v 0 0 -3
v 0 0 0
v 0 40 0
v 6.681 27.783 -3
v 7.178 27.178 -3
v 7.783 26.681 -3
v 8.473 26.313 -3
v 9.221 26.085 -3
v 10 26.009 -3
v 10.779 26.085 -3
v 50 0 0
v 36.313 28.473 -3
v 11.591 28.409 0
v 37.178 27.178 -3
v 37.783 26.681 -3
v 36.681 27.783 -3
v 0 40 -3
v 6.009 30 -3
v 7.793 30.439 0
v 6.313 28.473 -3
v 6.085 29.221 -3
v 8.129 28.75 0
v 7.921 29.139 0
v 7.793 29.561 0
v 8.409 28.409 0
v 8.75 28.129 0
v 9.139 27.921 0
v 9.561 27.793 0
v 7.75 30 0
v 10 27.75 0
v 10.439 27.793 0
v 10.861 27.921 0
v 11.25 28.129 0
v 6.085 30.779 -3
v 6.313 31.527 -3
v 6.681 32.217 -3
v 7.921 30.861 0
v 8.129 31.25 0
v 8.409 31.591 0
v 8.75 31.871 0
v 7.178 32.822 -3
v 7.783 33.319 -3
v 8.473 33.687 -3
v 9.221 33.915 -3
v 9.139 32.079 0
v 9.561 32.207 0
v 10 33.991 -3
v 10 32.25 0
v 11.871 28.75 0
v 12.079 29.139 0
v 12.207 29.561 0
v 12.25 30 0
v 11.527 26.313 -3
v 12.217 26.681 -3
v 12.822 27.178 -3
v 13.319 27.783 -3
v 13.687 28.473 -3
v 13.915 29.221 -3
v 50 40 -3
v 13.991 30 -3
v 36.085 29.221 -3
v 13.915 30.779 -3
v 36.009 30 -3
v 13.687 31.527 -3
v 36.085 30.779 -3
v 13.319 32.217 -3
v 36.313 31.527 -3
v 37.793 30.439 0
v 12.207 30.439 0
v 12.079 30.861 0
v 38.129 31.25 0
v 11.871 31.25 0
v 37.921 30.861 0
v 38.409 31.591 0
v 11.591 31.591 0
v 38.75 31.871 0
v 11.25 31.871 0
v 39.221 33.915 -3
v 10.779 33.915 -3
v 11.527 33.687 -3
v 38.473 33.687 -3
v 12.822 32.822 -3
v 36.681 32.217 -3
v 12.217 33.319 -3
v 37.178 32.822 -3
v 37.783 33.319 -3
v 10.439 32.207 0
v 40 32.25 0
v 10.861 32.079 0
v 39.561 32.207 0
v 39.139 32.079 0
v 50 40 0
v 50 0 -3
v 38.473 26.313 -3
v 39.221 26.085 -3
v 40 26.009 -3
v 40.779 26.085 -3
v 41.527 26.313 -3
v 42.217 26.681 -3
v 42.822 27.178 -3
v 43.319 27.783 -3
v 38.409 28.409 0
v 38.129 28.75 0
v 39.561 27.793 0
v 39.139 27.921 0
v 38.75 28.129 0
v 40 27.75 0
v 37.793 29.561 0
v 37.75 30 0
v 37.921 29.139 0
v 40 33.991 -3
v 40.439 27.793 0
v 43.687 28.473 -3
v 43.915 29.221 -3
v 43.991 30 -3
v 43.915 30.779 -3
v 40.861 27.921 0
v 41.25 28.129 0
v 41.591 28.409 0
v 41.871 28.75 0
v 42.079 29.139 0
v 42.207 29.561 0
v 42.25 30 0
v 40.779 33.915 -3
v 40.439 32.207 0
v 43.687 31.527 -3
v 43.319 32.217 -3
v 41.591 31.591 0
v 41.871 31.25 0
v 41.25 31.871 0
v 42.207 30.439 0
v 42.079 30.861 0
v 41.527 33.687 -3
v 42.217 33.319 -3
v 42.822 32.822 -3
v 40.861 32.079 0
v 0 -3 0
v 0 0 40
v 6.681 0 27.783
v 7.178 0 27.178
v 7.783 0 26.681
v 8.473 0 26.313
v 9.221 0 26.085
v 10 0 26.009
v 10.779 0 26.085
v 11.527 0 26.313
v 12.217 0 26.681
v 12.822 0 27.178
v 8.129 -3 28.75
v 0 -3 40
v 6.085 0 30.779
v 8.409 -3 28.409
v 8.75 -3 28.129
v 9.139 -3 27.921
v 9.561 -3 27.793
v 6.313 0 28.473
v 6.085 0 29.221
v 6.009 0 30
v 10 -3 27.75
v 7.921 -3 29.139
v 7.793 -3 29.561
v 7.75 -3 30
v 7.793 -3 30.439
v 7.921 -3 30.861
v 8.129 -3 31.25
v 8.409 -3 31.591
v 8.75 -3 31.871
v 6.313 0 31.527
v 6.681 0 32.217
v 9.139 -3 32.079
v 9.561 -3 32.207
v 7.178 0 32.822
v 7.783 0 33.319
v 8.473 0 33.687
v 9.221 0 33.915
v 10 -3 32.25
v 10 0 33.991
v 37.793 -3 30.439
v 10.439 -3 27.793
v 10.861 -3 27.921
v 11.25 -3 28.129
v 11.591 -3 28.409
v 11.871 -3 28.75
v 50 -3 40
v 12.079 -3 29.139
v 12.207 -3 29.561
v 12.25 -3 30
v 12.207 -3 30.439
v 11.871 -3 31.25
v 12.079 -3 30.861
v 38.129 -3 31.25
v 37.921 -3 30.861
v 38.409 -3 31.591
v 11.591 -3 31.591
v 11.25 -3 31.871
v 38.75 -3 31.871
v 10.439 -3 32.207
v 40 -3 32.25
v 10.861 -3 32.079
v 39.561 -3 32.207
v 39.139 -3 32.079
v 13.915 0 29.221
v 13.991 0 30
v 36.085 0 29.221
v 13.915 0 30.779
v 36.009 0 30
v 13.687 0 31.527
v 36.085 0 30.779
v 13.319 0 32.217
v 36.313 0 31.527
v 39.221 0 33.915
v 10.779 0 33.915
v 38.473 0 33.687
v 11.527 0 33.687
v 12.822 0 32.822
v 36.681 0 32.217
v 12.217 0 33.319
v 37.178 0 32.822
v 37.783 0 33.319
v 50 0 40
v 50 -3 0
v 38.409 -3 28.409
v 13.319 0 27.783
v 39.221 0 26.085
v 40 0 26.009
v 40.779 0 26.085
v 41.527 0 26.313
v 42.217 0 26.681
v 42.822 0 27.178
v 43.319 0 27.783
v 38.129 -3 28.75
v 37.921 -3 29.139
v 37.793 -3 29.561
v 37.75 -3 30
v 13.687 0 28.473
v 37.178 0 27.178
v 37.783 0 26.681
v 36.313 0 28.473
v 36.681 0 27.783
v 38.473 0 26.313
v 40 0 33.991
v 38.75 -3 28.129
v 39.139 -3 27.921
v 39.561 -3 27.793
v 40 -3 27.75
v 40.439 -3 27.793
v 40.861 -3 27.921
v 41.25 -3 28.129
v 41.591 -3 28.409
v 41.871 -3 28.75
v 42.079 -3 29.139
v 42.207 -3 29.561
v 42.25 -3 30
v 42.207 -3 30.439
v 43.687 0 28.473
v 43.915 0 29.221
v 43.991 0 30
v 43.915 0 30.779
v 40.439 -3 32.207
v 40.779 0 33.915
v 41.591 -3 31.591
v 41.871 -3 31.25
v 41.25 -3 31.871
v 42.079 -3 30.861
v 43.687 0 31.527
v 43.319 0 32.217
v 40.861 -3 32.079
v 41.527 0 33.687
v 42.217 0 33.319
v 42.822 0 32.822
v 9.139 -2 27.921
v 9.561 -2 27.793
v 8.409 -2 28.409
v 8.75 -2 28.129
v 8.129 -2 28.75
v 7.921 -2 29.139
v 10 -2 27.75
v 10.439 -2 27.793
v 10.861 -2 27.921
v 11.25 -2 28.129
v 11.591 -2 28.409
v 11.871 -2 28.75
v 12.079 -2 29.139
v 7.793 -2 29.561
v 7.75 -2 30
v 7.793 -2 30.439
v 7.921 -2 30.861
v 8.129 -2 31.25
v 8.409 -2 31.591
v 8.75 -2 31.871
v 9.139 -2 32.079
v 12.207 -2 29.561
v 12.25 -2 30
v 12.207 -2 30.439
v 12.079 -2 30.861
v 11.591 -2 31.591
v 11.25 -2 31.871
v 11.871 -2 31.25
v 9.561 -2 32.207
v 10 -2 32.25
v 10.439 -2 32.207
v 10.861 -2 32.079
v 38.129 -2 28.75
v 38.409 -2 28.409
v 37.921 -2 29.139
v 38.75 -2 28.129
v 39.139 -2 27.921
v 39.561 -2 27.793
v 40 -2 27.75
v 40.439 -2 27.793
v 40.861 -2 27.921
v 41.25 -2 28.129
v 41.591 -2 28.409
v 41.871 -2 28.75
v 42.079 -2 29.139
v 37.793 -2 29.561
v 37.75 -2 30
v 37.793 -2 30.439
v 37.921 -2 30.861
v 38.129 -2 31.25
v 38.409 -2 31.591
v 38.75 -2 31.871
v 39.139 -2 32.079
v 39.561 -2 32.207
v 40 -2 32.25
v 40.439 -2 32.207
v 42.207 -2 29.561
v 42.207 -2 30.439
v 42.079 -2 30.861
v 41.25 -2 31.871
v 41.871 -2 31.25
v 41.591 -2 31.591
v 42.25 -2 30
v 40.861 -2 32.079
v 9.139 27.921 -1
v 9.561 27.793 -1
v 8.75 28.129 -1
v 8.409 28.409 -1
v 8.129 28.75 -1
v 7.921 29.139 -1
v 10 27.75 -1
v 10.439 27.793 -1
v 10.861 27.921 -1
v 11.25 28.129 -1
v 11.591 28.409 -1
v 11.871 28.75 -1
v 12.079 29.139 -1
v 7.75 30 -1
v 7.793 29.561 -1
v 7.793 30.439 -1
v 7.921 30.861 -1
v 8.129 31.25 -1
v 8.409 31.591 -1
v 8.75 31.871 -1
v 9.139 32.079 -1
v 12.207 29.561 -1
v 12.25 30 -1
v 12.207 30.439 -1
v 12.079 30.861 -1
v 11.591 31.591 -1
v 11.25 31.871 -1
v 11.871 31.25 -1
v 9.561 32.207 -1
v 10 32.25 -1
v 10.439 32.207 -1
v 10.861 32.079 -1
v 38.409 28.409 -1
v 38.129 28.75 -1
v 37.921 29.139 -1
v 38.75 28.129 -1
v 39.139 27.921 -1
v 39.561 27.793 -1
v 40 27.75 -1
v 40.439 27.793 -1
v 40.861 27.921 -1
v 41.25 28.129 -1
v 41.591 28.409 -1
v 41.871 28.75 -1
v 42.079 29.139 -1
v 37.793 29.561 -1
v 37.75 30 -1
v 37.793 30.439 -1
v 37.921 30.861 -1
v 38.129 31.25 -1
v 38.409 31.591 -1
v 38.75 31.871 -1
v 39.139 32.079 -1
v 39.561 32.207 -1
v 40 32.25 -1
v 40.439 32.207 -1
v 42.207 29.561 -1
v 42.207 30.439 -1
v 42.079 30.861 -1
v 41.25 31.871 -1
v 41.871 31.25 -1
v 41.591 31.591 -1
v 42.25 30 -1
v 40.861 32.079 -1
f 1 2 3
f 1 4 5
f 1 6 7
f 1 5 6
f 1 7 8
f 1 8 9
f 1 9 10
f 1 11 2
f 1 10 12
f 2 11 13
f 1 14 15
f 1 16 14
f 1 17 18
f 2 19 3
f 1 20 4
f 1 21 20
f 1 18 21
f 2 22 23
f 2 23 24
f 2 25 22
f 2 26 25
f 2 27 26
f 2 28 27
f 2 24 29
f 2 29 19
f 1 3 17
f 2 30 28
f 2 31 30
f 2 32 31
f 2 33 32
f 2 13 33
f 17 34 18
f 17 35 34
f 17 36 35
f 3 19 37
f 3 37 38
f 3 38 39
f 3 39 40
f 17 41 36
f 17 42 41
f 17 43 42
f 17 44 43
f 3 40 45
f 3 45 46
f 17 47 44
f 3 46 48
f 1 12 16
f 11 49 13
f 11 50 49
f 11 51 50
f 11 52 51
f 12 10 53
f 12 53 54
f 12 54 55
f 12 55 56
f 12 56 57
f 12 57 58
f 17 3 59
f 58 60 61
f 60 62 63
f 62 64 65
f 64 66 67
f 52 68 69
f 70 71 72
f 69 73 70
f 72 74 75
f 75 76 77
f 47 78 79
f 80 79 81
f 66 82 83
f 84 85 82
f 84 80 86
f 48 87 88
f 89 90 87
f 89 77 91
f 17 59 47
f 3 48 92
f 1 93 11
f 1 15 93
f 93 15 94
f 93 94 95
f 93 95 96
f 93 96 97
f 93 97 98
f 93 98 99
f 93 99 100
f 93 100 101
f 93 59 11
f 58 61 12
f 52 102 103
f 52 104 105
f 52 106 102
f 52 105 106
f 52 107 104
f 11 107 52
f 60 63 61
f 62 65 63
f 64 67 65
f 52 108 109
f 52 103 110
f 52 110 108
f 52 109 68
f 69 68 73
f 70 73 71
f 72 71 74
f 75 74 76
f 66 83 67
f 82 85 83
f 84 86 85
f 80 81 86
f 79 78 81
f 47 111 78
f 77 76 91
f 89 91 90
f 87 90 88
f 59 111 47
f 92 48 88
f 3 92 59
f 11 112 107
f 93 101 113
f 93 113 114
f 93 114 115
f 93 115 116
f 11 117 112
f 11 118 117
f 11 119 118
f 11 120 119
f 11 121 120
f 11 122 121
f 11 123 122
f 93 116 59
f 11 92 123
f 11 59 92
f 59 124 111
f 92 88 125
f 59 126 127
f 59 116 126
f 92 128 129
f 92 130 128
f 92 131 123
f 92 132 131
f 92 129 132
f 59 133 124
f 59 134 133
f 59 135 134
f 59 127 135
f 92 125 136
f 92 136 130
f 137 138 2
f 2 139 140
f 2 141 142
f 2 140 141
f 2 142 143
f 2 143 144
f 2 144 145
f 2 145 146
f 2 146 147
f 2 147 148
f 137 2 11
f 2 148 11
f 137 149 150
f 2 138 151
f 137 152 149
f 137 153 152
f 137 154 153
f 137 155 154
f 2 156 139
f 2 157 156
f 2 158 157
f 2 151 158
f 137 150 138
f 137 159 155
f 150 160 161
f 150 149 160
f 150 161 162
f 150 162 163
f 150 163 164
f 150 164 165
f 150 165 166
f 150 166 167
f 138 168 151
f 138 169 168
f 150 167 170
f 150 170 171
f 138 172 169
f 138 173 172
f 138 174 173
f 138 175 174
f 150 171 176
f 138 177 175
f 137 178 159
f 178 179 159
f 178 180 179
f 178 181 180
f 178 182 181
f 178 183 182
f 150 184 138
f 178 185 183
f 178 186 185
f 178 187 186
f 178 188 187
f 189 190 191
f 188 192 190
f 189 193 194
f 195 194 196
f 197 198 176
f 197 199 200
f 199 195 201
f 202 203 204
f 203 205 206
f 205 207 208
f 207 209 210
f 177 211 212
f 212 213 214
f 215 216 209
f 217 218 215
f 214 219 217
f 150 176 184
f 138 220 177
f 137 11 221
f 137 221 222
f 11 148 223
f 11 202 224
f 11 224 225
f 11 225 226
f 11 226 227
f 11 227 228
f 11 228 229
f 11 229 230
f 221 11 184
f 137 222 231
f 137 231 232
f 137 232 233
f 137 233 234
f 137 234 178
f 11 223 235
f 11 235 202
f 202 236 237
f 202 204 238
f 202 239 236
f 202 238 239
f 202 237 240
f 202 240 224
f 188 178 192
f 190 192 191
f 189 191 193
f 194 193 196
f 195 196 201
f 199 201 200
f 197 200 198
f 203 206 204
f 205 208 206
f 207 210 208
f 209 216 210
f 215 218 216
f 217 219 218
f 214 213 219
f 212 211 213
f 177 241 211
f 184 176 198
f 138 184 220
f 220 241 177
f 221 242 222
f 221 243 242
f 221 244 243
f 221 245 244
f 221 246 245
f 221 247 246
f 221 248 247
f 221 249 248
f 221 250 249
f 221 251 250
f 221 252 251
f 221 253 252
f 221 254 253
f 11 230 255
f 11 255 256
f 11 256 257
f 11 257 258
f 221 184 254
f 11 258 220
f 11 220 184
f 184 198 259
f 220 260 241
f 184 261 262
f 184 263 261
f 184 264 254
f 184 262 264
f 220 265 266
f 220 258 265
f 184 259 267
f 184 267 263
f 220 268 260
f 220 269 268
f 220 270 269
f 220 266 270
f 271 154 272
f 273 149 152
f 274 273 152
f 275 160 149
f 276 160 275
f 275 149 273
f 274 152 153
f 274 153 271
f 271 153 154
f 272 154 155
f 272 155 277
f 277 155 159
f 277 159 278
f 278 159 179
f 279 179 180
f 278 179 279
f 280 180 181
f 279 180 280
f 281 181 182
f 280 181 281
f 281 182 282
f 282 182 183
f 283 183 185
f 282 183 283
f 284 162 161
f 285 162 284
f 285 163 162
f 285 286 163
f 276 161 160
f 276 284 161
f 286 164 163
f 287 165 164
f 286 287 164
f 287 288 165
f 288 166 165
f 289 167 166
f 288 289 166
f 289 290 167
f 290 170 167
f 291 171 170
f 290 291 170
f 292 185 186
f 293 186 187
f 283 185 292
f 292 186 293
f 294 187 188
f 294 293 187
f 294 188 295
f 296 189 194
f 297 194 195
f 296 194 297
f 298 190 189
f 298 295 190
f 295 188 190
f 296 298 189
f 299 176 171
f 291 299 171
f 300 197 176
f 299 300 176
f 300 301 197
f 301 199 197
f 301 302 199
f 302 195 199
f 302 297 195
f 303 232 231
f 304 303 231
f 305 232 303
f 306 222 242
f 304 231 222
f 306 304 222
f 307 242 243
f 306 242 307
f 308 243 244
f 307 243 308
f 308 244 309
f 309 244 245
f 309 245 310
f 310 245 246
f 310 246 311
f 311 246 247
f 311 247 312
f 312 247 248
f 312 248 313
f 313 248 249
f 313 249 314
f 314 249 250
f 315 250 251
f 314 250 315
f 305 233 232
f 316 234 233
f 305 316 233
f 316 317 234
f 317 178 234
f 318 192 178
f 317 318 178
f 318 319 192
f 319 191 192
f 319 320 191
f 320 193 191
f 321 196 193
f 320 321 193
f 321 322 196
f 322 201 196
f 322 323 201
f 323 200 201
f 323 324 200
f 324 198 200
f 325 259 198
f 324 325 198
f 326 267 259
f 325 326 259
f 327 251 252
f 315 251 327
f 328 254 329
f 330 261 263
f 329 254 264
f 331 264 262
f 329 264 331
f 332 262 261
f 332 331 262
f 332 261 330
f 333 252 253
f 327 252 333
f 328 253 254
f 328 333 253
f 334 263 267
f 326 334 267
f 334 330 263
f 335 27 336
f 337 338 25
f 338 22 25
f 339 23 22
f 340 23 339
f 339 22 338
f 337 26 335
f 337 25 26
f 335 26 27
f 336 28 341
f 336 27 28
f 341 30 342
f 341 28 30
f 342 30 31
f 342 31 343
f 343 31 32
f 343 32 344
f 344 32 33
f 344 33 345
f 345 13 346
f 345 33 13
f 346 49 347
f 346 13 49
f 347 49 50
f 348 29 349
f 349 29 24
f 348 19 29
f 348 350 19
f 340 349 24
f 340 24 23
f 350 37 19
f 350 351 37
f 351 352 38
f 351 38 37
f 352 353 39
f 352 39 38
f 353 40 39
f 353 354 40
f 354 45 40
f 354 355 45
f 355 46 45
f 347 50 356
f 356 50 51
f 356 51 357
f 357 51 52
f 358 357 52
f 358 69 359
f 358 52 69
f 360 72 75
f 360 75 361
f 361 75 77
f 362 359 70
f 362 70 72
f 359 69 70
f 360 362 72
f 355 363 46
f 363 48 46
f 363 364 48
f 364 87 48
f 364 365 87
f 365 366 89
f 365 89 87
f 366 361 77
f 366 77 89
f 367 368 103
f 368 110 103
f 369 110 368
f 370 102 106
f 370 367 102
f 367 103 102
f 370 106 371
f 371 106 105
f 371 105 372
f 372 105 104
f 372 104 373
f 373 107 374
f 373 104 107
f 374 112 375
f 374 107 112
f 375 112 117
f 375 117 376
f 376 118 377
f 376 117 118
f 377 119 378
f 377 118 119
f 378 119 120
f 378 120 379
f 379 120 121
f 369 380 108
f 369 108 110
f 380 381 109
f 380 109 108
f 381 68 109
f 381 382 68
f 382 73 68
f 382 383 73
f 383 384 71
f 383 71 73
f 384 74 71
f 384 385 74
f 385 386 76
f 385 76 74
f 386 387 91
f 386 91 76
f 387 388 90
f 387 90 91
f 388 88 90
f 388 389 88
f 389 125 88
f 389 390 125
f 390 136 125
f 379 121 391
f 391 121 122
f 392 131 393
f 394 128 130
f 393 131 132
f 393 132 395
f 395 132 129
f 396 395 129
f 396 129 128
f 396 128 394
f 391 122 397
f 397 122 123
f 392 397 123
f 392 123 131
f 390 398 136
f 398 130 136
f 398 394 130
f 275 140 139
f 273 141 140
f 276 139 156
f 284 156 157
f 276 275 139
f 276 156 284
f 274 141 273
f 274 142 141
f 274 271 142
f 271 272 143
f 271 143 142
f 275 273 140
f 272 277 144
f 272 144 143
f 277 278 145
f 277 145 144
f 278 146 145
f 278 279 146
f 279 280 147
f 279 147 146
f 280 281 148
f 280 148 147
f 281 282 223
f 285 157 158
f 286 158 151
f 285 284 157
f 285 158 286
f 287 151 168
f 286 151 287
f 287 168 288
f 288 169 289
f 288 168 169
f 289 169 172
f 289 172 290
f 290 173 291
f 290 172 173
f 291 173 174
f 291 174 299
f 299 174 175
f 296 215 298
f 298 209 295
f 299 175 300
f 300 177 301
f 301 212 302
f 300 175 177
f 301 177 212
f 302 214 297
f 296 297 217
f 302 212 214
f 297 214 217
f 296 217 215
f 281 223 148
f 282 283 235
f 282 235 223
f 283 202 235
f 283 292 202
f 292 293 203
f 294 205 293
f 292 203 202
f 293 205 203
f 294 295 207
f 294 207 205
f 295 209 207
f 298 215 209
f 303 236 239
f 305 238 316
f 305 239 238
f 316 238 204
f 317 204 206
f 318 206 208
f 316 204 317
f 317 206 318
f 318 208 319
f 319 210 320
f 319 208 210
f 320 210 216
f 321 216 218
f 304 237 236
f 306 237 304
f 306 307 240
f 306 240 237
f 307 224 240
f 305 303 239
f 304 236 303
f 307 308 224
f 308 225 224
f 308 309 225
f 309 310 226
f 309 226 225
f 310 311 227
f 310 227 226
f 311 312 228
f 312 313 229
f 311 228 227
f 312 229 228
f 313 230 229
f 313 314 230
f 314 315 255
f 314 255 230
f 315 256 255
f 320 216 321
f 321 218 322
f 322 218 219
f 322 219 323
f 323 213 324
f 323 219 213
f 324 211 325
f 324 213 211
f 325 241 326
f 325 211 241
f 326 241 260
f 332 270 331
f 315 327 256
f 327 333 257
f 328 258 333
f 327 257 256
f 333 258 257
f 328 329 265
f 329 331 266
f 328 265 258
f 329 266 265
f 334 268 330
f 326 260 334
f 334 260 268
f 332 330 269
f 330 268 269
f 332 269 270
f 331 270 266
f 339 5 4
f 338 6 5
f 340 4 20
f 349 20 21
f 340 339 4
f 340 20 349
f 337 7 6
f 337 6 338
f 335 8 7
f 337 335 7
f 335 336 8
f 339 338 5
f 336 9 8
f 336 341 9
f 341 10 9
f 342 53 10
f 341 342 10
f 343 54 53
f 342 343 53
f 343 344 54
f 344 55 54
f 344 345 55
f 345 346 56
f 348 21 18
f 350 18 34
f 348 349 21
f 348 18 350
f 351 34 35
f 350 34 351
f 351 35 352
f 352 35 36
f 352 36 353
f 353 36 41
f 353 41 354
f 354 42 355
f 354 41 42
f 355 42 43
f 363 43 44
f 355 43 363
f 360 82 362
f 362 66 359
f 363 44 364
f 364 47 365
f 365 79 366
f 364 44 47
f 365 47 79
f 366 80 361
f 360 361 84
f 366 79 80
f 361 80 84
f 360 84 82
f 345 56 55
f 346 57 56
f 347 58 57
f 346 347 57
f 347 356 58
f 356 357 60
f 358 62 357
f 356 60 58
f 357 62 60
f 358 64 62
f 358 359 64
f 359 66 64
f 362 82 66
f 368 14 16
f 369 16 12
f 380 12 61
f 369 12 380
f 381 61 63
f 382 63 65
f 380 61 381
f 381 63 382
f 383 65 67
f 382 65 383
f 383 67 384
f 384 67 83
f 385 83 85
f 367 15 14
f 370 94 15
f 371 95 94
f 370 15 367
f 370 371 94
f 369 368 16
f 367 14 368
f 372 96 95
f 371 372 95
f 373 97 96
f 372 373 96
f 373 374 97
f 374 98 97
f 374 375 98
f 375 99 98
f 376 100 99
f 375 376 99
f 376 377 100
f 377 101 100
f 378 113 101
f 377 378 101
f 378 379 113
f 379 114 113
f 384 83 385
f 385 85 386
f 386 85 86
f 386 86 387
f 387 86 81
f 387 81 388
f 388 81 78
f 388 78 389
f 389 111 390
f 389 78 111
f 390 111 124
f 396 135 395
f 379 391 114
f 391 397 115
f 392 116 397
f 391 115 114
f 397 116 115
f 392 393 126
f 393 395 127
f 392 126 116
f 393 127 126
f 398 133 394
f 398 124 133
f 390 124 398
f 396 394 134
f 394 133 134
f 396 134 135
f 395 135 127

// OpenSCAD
// L-bracket with countersunk holes

// Parameters
flange_width = 50;      // X direction
flange_depth = 40;      // Y direction for horizontal, Z direction for vertical
thickness = 3;

// Countersunk hole parameters
hole_diameter = 4.5;    // M4 through hole
countersink_diameter = 8;
countersink_depth = 2;
edge_distance = 10;     // Distance from edge to hole center

// Module for countersunk hole (pointing in +Z direction, countersink on top)
module countersunk_hole() {
    union() {
        // Through hole
        cylinder(h = thickness + 1, d = hole_diameter, center = true, $fn = 32);
        // Countersink (cone)
        translate([0, 0, thickness/2 - countersink_depth])
            cylinder(h = countersink_depth + 0.01, d1 = hole_diameter, d2 = countersink_diameter, $fn = 32);
    }
}

// Hole X positions (symmetric about center line, 10mm from left and right edges)
hole_x_positions = [edge_distance, flange_width - edge_distance];

difference() {
    union() {
        // Horizontal flange: extends in +Y direction, thickness in +Z at bottom (Z=0 to Z=thickness)
        // But inner corner at origin means the top surface of horizontal flange is at Z=0
        // So horizontal flange goes from Z=-thickness to Z=0, extending in +Y
        translate([0, 0, -thickness])
            cube([flange_width, flange_depth, thickness]);
        
        // Vertical flange: extends in +Z direction from origin, thickness in +Y at back
        // Inner corner at origin means inner surface is at Y=0
        // So vertical flange goes from Y=-thickness to Y=0, extending in +Z
        translate([0, -thickness, 0])
            cube([flange_width, thickness, flange_depth]);
    }
    
    // Countersunk holes on horizontal flange
    // Holes at Y = 10mm from edge (which is at Y=0, so Y = flange_depth - edge_distance from far edge)
    // Center of flange in Y direction, 10mm from the outer edge (Y = flange_depth)
    // So hole Y position = flange_depth - edge_distance
    for (x = hole_x_positions) {
        translate([x, flange_depth - edge_distance, -thickness/2])
            rotate([180, 0, 0])  // Countersink on bottom (-Z side, outside)
                countersunk_hole();
    }
    
    // Countersunk holes on vertical flange
    // 10mm from top edge (Z = flange_depth), so Z = flange_depth - edge_distance
    for (x = hole_x_positions) {
        translate([x, -thickness/2, flange_depth - edge_distance])
            rotate([-90, 0, 0])  // Countersink on -Y side (outside)
                countersunk_hole();
    }
}
